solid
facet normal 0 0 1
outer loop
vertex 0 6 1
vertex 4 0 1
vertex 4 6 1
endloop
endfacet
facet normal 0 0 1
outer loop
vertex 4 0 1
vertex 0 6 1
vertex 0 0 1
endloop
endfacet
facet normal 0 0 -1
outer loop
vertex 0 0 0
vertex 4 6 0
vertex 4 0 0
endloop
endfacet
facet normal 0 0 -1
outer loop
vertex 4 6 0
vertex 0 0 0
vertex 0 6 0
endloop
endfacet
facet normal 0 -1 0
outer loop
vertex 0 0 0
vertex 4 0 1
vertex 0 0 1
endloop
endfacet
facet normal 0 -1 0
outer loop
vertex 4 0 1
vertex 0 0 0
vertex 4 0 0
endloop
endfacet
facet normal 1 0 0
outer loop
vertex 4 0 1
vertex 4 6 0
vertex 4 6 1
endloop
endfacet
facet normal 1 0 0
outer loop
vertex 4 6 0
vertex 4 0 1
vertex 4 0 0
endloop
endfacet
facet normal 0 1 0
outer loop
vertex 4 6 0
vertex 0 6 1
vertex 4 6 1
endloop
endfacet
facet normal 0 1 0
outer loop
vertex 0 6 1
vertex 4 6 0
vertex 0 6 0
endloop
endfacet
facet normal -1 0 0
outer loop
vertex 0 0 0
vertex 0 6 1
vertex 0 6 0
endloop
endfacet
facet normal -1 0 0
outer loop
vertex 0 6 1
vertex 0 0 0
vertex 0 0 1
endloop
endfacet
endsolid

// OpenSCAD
/* Warning, this is a very basic generator with a lot of approximation 
input data : [VQFN, M2C, 4x6x1mm, 36, , A, C04-25399A]
generated by com.zoubworld.electronics.cad.model3d.Basic
Date : Sun Feb 15 10:50:49 CET 2026
*/

//body
color("black")
translate([0,0,0])
cube([4.0,6.0,1.0], center=false);
